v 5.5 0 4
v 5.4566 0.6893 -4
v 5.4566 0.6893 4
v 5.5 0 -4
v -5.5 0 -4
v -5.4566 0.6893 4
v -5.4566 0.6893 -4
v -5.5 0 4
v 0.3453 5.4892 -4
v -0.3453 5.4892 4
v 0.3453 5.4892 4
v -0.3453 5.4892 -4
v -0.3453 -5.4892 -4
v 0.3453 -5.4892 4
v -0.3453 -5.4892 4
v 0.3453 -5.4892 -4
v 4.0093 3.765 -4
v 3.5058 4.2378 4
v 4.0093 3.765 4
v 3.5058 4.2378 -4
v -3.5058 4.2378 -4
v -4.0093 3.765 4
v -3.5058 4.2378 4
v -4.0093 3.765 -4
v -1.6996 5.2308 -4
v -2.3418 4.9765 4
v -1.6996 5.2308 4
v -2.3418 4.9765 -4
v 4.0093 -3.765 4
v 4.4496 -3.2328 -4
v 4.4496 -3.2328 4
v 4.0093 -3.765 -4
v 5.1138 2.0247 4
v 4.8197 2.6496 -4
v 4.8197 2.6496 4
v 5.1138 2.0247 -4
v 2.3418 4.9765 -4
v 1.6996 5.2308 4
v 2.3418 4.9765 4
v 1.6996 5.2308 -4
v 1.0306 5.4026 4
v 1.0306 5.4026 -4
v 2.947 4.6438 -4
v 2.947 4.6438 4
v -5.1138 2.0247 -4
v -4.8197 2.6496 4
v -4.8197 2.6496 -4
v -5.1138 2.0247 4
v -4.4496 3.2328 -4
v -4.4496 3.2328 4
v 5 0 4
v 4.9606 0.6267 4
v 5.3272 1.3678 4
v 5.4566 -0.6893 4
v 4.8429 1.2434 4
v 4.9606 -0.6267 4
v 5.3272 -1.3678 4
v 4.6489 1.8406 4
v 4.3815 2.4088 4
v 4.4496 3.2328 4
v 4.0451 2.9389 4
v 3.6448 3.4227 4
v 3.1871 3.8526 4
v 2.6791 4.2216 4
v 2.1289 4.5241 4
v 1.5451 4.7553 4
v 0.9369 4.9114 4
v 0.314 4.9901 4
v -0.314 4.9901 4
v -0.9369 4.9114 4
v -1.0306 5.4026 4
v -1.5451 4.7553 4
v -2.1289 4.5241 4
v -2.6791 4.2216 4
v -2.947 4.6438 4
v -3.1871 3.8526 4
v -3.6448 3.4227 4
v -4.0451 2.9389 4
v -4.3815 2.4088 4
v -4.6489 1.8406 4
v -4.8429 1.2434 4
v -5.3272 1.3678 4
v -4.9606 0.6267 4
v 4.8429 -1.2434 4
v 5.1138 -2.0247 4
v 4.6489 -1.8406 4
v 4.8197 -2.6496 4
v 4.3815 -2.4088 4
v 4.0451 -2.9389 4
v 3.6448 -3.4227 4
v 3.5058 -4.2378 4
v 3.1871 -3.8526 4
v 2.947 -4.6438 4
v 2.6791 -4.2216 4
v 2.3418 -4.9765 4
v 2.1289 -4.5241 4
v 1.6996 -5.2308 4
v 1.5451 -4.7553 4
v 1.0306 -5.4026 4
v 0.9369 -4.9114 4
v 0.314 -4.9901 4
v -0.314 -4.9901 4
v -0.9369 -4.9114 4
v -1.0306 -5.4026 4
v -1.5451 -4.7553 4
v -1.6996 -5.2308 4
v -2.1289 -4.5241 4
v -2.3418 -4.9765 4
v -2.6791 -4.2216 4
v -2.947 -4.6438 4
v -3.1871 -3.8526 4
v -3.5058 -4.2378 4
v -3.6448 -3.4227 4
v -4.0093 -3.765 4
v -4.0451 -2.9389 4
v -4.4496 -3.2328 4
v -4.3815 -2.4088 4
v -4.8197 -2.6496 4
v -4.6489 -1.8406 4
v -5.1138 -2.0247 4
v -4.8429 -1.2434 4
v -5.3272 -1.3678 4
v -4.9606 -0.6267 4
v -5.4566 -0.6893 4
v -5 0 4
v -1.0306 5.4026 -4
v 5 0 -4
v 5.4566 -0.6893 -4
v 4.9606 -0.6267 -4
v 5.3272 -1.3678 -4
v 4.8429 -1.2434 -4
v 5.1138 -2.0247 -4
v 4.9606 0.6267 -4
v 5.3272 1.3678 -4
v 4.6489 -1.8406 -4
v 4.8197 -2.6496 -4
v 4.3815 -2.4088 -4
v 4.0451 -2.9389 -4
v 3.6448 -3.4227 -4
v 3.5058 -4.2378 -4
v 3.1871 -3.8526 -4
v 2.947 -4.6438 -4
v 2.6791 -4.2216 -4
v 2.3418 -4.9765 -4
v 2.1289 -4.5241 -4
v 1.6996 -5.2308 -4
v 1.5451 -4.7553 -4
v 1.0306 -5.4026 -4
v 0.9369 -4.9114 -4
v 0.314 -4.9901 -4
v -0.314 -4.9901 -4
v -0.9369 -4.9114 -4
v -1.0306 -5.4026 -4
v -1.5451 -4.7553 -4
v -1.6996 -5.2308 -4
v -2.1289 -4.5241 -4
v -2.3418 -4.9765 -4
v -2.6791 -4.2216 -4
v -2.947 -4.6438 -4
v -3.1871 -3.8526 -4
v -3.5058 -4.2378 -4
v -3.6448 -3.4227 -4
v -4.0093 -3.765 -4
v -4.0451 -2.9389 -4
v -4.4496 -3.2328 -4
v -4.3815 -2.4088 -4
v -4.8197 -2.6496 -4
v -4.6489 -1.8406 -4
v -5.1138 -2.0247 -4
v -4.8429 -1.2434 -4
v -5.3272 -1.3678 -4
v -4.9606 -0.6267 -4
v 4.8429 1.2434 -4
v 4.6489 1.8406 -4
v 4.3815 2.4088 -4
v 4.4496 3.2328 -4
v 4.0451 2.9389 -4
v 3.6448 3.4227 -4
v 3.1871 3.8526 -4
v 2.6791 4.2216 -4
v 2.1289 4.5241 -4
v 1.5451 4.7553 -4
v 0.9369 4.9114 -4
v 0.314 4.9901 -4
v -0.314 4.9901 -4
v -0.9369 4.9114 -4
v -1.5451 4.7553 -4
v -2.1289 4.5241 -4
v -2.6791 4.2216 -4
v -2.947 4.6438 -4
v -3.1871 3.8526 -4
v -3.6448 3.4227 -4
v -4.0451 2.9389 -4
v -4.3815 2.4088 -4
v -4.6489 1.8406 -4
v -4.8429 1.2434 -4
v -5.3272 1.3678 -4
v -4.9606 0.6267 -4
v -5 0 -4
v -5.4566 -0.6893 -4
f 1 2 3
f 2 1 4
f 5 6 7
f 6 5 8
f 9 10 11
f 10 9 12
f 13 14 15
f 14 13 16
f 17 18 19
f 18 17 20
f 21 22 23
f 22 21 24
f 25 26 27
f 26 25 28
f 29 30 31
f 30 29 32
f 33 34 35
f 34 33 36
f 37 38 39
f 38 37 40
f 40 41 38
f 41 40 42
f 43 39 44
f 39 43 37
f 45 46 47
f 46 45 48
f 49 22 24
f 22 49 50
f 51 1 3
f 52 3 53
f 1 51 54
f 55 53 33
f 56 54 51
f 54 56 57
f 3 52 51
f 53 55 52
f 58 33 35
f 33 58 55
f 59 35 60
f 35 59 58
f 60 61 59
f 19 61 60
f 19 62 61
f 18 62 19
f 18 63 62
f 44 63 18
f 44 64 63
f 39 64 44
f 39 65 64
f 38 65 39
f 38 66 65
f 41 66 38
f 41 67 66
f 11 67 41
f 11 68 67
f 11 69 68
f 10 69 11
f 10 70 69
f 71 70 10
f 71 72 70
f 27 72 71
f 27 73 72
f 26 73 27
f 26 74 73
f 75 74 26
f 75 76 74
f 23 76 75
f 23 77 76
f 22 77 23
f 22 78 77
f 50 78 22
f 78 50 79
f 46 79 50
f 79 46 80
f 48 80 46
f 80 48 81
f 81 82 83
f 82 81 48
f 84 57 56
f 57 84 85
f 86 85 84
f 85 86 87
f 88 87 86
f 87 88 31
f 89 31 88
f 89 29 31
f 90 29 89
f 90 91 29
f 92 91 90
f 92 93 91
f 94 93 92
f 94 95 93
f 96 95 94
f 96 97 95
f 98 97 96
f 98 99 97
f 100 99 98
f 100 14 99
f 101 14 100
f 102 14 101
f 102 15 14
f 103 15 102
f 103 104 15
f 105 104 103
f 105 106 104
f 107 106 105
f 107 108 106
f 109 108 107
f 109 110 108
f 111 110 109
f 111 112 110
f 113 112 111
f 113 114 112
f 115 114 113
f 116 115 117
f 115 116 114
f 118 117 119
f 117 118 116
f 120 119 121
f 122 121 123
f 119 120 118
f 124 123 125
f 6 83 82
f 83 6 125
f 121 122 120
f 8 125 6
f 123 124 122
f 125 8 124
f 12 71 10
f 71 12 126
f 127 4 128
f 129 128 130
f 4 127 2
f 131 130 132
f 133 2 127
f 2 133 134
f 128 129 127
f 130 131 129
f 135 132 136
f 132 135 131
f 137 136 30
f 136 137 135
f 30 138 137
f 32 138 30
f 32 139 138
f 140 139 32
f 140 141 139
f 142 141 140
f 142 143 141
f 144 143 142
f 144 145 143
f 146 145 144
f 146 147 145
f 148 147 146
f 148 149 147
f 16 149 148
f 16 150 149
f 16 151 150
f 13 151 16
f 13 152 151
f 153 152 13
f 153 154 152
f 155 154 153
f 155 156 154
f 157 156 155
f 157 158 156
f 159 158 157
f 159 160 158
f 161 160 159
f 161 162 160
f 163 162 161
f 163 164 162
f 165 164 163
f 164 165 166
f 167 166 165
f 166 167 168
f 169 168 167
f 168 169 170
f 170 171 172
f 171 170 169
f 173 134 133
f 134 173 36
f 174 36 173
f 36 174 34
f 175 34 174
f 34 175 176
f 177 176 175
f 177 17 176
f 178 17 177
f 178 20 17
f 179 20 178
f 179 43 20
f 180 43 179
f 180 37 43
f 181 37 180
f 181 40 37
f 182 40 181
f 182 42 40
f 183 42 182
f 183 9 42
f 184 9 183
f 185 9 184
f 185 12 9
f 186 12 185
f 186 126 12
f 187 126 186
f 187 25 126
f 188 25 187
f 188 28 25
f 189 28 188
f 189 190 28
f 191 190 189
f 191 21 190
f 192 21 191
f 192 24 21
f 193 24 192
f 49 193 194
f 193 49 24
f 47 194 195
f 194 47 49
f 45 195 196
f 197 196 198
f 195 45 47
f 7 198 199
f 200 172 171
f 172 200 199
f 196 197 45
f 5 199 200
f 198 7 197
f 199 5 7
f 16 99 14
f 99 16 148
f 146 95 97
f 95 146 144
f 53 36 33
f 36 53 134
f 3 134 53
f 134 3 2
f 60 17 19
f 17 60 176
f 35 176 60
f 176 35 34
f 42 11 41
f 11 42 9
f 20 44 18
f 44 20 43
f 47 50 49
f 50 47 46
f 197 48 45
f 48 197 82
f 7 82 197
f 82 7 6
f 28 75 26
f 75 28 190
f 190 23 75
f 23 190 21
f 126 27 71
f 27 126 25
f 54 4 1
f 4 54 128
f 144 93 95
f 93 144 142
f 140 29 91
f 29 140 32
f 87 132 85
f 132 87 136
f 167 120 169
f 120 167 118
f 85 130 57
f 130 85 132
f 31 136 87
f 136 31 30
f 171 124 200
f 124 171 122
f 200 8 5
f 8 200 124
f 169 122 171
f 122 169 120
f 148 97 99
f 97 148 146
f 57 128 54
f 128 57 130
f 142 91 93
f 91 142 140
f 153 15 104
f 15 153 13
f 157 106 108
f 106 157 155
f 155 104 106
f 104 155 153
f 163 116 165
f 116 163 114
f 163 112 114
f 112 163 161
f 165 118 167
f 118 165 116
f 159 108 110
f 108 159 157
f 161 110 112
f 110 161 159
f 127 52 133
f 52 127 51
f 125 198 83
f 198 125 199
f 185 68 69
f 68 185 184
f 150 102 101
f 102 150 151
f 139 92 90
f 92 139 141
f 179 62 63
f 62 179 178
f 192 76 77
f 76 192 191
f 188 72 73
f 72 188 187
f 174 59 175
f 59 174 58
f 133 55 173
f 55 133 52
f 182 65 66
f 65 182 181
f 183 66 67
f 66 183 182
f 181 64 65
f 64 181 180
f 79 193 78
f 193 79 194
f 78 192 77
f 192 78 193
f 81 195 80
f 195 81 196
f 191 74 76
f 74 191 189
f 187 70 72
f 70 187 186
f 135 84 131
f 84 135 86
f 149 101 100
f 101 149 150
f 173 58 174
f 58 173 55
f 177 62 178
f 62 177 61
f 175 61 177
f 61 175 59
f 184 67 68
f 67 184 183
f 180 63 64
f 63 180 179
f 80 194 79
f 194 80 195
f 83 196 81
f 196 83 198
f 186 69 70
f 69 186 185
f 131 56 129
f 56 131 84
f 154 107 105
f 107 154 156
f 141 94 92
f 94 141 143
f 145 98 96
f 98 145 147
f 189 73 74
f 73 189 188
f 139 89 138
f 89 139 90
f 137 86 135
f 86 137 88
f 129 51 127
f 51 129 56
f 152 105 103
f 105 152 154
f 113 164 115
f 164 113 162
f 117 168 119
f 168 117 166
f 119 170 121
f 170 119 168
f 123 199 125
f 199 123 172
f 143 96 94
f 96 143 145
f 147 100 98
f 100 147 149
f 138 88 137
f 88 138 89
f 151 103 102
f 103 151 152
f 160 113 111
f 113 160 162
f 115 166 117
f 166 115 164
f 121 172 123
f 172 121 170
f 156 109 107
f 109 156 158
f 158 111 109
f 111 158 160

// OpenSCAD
$fn = 50;


difference() {
	union() {
		translate(v = [0, 0, -4.0000000000]) {
			cylinder(h = 8, r = 5.5000000000);
		}
	}
	union() {
		translate(v = [0, 0, -100.0000000000]) {
			cylinder(h = 200, r = 5);
		}
	}
}
